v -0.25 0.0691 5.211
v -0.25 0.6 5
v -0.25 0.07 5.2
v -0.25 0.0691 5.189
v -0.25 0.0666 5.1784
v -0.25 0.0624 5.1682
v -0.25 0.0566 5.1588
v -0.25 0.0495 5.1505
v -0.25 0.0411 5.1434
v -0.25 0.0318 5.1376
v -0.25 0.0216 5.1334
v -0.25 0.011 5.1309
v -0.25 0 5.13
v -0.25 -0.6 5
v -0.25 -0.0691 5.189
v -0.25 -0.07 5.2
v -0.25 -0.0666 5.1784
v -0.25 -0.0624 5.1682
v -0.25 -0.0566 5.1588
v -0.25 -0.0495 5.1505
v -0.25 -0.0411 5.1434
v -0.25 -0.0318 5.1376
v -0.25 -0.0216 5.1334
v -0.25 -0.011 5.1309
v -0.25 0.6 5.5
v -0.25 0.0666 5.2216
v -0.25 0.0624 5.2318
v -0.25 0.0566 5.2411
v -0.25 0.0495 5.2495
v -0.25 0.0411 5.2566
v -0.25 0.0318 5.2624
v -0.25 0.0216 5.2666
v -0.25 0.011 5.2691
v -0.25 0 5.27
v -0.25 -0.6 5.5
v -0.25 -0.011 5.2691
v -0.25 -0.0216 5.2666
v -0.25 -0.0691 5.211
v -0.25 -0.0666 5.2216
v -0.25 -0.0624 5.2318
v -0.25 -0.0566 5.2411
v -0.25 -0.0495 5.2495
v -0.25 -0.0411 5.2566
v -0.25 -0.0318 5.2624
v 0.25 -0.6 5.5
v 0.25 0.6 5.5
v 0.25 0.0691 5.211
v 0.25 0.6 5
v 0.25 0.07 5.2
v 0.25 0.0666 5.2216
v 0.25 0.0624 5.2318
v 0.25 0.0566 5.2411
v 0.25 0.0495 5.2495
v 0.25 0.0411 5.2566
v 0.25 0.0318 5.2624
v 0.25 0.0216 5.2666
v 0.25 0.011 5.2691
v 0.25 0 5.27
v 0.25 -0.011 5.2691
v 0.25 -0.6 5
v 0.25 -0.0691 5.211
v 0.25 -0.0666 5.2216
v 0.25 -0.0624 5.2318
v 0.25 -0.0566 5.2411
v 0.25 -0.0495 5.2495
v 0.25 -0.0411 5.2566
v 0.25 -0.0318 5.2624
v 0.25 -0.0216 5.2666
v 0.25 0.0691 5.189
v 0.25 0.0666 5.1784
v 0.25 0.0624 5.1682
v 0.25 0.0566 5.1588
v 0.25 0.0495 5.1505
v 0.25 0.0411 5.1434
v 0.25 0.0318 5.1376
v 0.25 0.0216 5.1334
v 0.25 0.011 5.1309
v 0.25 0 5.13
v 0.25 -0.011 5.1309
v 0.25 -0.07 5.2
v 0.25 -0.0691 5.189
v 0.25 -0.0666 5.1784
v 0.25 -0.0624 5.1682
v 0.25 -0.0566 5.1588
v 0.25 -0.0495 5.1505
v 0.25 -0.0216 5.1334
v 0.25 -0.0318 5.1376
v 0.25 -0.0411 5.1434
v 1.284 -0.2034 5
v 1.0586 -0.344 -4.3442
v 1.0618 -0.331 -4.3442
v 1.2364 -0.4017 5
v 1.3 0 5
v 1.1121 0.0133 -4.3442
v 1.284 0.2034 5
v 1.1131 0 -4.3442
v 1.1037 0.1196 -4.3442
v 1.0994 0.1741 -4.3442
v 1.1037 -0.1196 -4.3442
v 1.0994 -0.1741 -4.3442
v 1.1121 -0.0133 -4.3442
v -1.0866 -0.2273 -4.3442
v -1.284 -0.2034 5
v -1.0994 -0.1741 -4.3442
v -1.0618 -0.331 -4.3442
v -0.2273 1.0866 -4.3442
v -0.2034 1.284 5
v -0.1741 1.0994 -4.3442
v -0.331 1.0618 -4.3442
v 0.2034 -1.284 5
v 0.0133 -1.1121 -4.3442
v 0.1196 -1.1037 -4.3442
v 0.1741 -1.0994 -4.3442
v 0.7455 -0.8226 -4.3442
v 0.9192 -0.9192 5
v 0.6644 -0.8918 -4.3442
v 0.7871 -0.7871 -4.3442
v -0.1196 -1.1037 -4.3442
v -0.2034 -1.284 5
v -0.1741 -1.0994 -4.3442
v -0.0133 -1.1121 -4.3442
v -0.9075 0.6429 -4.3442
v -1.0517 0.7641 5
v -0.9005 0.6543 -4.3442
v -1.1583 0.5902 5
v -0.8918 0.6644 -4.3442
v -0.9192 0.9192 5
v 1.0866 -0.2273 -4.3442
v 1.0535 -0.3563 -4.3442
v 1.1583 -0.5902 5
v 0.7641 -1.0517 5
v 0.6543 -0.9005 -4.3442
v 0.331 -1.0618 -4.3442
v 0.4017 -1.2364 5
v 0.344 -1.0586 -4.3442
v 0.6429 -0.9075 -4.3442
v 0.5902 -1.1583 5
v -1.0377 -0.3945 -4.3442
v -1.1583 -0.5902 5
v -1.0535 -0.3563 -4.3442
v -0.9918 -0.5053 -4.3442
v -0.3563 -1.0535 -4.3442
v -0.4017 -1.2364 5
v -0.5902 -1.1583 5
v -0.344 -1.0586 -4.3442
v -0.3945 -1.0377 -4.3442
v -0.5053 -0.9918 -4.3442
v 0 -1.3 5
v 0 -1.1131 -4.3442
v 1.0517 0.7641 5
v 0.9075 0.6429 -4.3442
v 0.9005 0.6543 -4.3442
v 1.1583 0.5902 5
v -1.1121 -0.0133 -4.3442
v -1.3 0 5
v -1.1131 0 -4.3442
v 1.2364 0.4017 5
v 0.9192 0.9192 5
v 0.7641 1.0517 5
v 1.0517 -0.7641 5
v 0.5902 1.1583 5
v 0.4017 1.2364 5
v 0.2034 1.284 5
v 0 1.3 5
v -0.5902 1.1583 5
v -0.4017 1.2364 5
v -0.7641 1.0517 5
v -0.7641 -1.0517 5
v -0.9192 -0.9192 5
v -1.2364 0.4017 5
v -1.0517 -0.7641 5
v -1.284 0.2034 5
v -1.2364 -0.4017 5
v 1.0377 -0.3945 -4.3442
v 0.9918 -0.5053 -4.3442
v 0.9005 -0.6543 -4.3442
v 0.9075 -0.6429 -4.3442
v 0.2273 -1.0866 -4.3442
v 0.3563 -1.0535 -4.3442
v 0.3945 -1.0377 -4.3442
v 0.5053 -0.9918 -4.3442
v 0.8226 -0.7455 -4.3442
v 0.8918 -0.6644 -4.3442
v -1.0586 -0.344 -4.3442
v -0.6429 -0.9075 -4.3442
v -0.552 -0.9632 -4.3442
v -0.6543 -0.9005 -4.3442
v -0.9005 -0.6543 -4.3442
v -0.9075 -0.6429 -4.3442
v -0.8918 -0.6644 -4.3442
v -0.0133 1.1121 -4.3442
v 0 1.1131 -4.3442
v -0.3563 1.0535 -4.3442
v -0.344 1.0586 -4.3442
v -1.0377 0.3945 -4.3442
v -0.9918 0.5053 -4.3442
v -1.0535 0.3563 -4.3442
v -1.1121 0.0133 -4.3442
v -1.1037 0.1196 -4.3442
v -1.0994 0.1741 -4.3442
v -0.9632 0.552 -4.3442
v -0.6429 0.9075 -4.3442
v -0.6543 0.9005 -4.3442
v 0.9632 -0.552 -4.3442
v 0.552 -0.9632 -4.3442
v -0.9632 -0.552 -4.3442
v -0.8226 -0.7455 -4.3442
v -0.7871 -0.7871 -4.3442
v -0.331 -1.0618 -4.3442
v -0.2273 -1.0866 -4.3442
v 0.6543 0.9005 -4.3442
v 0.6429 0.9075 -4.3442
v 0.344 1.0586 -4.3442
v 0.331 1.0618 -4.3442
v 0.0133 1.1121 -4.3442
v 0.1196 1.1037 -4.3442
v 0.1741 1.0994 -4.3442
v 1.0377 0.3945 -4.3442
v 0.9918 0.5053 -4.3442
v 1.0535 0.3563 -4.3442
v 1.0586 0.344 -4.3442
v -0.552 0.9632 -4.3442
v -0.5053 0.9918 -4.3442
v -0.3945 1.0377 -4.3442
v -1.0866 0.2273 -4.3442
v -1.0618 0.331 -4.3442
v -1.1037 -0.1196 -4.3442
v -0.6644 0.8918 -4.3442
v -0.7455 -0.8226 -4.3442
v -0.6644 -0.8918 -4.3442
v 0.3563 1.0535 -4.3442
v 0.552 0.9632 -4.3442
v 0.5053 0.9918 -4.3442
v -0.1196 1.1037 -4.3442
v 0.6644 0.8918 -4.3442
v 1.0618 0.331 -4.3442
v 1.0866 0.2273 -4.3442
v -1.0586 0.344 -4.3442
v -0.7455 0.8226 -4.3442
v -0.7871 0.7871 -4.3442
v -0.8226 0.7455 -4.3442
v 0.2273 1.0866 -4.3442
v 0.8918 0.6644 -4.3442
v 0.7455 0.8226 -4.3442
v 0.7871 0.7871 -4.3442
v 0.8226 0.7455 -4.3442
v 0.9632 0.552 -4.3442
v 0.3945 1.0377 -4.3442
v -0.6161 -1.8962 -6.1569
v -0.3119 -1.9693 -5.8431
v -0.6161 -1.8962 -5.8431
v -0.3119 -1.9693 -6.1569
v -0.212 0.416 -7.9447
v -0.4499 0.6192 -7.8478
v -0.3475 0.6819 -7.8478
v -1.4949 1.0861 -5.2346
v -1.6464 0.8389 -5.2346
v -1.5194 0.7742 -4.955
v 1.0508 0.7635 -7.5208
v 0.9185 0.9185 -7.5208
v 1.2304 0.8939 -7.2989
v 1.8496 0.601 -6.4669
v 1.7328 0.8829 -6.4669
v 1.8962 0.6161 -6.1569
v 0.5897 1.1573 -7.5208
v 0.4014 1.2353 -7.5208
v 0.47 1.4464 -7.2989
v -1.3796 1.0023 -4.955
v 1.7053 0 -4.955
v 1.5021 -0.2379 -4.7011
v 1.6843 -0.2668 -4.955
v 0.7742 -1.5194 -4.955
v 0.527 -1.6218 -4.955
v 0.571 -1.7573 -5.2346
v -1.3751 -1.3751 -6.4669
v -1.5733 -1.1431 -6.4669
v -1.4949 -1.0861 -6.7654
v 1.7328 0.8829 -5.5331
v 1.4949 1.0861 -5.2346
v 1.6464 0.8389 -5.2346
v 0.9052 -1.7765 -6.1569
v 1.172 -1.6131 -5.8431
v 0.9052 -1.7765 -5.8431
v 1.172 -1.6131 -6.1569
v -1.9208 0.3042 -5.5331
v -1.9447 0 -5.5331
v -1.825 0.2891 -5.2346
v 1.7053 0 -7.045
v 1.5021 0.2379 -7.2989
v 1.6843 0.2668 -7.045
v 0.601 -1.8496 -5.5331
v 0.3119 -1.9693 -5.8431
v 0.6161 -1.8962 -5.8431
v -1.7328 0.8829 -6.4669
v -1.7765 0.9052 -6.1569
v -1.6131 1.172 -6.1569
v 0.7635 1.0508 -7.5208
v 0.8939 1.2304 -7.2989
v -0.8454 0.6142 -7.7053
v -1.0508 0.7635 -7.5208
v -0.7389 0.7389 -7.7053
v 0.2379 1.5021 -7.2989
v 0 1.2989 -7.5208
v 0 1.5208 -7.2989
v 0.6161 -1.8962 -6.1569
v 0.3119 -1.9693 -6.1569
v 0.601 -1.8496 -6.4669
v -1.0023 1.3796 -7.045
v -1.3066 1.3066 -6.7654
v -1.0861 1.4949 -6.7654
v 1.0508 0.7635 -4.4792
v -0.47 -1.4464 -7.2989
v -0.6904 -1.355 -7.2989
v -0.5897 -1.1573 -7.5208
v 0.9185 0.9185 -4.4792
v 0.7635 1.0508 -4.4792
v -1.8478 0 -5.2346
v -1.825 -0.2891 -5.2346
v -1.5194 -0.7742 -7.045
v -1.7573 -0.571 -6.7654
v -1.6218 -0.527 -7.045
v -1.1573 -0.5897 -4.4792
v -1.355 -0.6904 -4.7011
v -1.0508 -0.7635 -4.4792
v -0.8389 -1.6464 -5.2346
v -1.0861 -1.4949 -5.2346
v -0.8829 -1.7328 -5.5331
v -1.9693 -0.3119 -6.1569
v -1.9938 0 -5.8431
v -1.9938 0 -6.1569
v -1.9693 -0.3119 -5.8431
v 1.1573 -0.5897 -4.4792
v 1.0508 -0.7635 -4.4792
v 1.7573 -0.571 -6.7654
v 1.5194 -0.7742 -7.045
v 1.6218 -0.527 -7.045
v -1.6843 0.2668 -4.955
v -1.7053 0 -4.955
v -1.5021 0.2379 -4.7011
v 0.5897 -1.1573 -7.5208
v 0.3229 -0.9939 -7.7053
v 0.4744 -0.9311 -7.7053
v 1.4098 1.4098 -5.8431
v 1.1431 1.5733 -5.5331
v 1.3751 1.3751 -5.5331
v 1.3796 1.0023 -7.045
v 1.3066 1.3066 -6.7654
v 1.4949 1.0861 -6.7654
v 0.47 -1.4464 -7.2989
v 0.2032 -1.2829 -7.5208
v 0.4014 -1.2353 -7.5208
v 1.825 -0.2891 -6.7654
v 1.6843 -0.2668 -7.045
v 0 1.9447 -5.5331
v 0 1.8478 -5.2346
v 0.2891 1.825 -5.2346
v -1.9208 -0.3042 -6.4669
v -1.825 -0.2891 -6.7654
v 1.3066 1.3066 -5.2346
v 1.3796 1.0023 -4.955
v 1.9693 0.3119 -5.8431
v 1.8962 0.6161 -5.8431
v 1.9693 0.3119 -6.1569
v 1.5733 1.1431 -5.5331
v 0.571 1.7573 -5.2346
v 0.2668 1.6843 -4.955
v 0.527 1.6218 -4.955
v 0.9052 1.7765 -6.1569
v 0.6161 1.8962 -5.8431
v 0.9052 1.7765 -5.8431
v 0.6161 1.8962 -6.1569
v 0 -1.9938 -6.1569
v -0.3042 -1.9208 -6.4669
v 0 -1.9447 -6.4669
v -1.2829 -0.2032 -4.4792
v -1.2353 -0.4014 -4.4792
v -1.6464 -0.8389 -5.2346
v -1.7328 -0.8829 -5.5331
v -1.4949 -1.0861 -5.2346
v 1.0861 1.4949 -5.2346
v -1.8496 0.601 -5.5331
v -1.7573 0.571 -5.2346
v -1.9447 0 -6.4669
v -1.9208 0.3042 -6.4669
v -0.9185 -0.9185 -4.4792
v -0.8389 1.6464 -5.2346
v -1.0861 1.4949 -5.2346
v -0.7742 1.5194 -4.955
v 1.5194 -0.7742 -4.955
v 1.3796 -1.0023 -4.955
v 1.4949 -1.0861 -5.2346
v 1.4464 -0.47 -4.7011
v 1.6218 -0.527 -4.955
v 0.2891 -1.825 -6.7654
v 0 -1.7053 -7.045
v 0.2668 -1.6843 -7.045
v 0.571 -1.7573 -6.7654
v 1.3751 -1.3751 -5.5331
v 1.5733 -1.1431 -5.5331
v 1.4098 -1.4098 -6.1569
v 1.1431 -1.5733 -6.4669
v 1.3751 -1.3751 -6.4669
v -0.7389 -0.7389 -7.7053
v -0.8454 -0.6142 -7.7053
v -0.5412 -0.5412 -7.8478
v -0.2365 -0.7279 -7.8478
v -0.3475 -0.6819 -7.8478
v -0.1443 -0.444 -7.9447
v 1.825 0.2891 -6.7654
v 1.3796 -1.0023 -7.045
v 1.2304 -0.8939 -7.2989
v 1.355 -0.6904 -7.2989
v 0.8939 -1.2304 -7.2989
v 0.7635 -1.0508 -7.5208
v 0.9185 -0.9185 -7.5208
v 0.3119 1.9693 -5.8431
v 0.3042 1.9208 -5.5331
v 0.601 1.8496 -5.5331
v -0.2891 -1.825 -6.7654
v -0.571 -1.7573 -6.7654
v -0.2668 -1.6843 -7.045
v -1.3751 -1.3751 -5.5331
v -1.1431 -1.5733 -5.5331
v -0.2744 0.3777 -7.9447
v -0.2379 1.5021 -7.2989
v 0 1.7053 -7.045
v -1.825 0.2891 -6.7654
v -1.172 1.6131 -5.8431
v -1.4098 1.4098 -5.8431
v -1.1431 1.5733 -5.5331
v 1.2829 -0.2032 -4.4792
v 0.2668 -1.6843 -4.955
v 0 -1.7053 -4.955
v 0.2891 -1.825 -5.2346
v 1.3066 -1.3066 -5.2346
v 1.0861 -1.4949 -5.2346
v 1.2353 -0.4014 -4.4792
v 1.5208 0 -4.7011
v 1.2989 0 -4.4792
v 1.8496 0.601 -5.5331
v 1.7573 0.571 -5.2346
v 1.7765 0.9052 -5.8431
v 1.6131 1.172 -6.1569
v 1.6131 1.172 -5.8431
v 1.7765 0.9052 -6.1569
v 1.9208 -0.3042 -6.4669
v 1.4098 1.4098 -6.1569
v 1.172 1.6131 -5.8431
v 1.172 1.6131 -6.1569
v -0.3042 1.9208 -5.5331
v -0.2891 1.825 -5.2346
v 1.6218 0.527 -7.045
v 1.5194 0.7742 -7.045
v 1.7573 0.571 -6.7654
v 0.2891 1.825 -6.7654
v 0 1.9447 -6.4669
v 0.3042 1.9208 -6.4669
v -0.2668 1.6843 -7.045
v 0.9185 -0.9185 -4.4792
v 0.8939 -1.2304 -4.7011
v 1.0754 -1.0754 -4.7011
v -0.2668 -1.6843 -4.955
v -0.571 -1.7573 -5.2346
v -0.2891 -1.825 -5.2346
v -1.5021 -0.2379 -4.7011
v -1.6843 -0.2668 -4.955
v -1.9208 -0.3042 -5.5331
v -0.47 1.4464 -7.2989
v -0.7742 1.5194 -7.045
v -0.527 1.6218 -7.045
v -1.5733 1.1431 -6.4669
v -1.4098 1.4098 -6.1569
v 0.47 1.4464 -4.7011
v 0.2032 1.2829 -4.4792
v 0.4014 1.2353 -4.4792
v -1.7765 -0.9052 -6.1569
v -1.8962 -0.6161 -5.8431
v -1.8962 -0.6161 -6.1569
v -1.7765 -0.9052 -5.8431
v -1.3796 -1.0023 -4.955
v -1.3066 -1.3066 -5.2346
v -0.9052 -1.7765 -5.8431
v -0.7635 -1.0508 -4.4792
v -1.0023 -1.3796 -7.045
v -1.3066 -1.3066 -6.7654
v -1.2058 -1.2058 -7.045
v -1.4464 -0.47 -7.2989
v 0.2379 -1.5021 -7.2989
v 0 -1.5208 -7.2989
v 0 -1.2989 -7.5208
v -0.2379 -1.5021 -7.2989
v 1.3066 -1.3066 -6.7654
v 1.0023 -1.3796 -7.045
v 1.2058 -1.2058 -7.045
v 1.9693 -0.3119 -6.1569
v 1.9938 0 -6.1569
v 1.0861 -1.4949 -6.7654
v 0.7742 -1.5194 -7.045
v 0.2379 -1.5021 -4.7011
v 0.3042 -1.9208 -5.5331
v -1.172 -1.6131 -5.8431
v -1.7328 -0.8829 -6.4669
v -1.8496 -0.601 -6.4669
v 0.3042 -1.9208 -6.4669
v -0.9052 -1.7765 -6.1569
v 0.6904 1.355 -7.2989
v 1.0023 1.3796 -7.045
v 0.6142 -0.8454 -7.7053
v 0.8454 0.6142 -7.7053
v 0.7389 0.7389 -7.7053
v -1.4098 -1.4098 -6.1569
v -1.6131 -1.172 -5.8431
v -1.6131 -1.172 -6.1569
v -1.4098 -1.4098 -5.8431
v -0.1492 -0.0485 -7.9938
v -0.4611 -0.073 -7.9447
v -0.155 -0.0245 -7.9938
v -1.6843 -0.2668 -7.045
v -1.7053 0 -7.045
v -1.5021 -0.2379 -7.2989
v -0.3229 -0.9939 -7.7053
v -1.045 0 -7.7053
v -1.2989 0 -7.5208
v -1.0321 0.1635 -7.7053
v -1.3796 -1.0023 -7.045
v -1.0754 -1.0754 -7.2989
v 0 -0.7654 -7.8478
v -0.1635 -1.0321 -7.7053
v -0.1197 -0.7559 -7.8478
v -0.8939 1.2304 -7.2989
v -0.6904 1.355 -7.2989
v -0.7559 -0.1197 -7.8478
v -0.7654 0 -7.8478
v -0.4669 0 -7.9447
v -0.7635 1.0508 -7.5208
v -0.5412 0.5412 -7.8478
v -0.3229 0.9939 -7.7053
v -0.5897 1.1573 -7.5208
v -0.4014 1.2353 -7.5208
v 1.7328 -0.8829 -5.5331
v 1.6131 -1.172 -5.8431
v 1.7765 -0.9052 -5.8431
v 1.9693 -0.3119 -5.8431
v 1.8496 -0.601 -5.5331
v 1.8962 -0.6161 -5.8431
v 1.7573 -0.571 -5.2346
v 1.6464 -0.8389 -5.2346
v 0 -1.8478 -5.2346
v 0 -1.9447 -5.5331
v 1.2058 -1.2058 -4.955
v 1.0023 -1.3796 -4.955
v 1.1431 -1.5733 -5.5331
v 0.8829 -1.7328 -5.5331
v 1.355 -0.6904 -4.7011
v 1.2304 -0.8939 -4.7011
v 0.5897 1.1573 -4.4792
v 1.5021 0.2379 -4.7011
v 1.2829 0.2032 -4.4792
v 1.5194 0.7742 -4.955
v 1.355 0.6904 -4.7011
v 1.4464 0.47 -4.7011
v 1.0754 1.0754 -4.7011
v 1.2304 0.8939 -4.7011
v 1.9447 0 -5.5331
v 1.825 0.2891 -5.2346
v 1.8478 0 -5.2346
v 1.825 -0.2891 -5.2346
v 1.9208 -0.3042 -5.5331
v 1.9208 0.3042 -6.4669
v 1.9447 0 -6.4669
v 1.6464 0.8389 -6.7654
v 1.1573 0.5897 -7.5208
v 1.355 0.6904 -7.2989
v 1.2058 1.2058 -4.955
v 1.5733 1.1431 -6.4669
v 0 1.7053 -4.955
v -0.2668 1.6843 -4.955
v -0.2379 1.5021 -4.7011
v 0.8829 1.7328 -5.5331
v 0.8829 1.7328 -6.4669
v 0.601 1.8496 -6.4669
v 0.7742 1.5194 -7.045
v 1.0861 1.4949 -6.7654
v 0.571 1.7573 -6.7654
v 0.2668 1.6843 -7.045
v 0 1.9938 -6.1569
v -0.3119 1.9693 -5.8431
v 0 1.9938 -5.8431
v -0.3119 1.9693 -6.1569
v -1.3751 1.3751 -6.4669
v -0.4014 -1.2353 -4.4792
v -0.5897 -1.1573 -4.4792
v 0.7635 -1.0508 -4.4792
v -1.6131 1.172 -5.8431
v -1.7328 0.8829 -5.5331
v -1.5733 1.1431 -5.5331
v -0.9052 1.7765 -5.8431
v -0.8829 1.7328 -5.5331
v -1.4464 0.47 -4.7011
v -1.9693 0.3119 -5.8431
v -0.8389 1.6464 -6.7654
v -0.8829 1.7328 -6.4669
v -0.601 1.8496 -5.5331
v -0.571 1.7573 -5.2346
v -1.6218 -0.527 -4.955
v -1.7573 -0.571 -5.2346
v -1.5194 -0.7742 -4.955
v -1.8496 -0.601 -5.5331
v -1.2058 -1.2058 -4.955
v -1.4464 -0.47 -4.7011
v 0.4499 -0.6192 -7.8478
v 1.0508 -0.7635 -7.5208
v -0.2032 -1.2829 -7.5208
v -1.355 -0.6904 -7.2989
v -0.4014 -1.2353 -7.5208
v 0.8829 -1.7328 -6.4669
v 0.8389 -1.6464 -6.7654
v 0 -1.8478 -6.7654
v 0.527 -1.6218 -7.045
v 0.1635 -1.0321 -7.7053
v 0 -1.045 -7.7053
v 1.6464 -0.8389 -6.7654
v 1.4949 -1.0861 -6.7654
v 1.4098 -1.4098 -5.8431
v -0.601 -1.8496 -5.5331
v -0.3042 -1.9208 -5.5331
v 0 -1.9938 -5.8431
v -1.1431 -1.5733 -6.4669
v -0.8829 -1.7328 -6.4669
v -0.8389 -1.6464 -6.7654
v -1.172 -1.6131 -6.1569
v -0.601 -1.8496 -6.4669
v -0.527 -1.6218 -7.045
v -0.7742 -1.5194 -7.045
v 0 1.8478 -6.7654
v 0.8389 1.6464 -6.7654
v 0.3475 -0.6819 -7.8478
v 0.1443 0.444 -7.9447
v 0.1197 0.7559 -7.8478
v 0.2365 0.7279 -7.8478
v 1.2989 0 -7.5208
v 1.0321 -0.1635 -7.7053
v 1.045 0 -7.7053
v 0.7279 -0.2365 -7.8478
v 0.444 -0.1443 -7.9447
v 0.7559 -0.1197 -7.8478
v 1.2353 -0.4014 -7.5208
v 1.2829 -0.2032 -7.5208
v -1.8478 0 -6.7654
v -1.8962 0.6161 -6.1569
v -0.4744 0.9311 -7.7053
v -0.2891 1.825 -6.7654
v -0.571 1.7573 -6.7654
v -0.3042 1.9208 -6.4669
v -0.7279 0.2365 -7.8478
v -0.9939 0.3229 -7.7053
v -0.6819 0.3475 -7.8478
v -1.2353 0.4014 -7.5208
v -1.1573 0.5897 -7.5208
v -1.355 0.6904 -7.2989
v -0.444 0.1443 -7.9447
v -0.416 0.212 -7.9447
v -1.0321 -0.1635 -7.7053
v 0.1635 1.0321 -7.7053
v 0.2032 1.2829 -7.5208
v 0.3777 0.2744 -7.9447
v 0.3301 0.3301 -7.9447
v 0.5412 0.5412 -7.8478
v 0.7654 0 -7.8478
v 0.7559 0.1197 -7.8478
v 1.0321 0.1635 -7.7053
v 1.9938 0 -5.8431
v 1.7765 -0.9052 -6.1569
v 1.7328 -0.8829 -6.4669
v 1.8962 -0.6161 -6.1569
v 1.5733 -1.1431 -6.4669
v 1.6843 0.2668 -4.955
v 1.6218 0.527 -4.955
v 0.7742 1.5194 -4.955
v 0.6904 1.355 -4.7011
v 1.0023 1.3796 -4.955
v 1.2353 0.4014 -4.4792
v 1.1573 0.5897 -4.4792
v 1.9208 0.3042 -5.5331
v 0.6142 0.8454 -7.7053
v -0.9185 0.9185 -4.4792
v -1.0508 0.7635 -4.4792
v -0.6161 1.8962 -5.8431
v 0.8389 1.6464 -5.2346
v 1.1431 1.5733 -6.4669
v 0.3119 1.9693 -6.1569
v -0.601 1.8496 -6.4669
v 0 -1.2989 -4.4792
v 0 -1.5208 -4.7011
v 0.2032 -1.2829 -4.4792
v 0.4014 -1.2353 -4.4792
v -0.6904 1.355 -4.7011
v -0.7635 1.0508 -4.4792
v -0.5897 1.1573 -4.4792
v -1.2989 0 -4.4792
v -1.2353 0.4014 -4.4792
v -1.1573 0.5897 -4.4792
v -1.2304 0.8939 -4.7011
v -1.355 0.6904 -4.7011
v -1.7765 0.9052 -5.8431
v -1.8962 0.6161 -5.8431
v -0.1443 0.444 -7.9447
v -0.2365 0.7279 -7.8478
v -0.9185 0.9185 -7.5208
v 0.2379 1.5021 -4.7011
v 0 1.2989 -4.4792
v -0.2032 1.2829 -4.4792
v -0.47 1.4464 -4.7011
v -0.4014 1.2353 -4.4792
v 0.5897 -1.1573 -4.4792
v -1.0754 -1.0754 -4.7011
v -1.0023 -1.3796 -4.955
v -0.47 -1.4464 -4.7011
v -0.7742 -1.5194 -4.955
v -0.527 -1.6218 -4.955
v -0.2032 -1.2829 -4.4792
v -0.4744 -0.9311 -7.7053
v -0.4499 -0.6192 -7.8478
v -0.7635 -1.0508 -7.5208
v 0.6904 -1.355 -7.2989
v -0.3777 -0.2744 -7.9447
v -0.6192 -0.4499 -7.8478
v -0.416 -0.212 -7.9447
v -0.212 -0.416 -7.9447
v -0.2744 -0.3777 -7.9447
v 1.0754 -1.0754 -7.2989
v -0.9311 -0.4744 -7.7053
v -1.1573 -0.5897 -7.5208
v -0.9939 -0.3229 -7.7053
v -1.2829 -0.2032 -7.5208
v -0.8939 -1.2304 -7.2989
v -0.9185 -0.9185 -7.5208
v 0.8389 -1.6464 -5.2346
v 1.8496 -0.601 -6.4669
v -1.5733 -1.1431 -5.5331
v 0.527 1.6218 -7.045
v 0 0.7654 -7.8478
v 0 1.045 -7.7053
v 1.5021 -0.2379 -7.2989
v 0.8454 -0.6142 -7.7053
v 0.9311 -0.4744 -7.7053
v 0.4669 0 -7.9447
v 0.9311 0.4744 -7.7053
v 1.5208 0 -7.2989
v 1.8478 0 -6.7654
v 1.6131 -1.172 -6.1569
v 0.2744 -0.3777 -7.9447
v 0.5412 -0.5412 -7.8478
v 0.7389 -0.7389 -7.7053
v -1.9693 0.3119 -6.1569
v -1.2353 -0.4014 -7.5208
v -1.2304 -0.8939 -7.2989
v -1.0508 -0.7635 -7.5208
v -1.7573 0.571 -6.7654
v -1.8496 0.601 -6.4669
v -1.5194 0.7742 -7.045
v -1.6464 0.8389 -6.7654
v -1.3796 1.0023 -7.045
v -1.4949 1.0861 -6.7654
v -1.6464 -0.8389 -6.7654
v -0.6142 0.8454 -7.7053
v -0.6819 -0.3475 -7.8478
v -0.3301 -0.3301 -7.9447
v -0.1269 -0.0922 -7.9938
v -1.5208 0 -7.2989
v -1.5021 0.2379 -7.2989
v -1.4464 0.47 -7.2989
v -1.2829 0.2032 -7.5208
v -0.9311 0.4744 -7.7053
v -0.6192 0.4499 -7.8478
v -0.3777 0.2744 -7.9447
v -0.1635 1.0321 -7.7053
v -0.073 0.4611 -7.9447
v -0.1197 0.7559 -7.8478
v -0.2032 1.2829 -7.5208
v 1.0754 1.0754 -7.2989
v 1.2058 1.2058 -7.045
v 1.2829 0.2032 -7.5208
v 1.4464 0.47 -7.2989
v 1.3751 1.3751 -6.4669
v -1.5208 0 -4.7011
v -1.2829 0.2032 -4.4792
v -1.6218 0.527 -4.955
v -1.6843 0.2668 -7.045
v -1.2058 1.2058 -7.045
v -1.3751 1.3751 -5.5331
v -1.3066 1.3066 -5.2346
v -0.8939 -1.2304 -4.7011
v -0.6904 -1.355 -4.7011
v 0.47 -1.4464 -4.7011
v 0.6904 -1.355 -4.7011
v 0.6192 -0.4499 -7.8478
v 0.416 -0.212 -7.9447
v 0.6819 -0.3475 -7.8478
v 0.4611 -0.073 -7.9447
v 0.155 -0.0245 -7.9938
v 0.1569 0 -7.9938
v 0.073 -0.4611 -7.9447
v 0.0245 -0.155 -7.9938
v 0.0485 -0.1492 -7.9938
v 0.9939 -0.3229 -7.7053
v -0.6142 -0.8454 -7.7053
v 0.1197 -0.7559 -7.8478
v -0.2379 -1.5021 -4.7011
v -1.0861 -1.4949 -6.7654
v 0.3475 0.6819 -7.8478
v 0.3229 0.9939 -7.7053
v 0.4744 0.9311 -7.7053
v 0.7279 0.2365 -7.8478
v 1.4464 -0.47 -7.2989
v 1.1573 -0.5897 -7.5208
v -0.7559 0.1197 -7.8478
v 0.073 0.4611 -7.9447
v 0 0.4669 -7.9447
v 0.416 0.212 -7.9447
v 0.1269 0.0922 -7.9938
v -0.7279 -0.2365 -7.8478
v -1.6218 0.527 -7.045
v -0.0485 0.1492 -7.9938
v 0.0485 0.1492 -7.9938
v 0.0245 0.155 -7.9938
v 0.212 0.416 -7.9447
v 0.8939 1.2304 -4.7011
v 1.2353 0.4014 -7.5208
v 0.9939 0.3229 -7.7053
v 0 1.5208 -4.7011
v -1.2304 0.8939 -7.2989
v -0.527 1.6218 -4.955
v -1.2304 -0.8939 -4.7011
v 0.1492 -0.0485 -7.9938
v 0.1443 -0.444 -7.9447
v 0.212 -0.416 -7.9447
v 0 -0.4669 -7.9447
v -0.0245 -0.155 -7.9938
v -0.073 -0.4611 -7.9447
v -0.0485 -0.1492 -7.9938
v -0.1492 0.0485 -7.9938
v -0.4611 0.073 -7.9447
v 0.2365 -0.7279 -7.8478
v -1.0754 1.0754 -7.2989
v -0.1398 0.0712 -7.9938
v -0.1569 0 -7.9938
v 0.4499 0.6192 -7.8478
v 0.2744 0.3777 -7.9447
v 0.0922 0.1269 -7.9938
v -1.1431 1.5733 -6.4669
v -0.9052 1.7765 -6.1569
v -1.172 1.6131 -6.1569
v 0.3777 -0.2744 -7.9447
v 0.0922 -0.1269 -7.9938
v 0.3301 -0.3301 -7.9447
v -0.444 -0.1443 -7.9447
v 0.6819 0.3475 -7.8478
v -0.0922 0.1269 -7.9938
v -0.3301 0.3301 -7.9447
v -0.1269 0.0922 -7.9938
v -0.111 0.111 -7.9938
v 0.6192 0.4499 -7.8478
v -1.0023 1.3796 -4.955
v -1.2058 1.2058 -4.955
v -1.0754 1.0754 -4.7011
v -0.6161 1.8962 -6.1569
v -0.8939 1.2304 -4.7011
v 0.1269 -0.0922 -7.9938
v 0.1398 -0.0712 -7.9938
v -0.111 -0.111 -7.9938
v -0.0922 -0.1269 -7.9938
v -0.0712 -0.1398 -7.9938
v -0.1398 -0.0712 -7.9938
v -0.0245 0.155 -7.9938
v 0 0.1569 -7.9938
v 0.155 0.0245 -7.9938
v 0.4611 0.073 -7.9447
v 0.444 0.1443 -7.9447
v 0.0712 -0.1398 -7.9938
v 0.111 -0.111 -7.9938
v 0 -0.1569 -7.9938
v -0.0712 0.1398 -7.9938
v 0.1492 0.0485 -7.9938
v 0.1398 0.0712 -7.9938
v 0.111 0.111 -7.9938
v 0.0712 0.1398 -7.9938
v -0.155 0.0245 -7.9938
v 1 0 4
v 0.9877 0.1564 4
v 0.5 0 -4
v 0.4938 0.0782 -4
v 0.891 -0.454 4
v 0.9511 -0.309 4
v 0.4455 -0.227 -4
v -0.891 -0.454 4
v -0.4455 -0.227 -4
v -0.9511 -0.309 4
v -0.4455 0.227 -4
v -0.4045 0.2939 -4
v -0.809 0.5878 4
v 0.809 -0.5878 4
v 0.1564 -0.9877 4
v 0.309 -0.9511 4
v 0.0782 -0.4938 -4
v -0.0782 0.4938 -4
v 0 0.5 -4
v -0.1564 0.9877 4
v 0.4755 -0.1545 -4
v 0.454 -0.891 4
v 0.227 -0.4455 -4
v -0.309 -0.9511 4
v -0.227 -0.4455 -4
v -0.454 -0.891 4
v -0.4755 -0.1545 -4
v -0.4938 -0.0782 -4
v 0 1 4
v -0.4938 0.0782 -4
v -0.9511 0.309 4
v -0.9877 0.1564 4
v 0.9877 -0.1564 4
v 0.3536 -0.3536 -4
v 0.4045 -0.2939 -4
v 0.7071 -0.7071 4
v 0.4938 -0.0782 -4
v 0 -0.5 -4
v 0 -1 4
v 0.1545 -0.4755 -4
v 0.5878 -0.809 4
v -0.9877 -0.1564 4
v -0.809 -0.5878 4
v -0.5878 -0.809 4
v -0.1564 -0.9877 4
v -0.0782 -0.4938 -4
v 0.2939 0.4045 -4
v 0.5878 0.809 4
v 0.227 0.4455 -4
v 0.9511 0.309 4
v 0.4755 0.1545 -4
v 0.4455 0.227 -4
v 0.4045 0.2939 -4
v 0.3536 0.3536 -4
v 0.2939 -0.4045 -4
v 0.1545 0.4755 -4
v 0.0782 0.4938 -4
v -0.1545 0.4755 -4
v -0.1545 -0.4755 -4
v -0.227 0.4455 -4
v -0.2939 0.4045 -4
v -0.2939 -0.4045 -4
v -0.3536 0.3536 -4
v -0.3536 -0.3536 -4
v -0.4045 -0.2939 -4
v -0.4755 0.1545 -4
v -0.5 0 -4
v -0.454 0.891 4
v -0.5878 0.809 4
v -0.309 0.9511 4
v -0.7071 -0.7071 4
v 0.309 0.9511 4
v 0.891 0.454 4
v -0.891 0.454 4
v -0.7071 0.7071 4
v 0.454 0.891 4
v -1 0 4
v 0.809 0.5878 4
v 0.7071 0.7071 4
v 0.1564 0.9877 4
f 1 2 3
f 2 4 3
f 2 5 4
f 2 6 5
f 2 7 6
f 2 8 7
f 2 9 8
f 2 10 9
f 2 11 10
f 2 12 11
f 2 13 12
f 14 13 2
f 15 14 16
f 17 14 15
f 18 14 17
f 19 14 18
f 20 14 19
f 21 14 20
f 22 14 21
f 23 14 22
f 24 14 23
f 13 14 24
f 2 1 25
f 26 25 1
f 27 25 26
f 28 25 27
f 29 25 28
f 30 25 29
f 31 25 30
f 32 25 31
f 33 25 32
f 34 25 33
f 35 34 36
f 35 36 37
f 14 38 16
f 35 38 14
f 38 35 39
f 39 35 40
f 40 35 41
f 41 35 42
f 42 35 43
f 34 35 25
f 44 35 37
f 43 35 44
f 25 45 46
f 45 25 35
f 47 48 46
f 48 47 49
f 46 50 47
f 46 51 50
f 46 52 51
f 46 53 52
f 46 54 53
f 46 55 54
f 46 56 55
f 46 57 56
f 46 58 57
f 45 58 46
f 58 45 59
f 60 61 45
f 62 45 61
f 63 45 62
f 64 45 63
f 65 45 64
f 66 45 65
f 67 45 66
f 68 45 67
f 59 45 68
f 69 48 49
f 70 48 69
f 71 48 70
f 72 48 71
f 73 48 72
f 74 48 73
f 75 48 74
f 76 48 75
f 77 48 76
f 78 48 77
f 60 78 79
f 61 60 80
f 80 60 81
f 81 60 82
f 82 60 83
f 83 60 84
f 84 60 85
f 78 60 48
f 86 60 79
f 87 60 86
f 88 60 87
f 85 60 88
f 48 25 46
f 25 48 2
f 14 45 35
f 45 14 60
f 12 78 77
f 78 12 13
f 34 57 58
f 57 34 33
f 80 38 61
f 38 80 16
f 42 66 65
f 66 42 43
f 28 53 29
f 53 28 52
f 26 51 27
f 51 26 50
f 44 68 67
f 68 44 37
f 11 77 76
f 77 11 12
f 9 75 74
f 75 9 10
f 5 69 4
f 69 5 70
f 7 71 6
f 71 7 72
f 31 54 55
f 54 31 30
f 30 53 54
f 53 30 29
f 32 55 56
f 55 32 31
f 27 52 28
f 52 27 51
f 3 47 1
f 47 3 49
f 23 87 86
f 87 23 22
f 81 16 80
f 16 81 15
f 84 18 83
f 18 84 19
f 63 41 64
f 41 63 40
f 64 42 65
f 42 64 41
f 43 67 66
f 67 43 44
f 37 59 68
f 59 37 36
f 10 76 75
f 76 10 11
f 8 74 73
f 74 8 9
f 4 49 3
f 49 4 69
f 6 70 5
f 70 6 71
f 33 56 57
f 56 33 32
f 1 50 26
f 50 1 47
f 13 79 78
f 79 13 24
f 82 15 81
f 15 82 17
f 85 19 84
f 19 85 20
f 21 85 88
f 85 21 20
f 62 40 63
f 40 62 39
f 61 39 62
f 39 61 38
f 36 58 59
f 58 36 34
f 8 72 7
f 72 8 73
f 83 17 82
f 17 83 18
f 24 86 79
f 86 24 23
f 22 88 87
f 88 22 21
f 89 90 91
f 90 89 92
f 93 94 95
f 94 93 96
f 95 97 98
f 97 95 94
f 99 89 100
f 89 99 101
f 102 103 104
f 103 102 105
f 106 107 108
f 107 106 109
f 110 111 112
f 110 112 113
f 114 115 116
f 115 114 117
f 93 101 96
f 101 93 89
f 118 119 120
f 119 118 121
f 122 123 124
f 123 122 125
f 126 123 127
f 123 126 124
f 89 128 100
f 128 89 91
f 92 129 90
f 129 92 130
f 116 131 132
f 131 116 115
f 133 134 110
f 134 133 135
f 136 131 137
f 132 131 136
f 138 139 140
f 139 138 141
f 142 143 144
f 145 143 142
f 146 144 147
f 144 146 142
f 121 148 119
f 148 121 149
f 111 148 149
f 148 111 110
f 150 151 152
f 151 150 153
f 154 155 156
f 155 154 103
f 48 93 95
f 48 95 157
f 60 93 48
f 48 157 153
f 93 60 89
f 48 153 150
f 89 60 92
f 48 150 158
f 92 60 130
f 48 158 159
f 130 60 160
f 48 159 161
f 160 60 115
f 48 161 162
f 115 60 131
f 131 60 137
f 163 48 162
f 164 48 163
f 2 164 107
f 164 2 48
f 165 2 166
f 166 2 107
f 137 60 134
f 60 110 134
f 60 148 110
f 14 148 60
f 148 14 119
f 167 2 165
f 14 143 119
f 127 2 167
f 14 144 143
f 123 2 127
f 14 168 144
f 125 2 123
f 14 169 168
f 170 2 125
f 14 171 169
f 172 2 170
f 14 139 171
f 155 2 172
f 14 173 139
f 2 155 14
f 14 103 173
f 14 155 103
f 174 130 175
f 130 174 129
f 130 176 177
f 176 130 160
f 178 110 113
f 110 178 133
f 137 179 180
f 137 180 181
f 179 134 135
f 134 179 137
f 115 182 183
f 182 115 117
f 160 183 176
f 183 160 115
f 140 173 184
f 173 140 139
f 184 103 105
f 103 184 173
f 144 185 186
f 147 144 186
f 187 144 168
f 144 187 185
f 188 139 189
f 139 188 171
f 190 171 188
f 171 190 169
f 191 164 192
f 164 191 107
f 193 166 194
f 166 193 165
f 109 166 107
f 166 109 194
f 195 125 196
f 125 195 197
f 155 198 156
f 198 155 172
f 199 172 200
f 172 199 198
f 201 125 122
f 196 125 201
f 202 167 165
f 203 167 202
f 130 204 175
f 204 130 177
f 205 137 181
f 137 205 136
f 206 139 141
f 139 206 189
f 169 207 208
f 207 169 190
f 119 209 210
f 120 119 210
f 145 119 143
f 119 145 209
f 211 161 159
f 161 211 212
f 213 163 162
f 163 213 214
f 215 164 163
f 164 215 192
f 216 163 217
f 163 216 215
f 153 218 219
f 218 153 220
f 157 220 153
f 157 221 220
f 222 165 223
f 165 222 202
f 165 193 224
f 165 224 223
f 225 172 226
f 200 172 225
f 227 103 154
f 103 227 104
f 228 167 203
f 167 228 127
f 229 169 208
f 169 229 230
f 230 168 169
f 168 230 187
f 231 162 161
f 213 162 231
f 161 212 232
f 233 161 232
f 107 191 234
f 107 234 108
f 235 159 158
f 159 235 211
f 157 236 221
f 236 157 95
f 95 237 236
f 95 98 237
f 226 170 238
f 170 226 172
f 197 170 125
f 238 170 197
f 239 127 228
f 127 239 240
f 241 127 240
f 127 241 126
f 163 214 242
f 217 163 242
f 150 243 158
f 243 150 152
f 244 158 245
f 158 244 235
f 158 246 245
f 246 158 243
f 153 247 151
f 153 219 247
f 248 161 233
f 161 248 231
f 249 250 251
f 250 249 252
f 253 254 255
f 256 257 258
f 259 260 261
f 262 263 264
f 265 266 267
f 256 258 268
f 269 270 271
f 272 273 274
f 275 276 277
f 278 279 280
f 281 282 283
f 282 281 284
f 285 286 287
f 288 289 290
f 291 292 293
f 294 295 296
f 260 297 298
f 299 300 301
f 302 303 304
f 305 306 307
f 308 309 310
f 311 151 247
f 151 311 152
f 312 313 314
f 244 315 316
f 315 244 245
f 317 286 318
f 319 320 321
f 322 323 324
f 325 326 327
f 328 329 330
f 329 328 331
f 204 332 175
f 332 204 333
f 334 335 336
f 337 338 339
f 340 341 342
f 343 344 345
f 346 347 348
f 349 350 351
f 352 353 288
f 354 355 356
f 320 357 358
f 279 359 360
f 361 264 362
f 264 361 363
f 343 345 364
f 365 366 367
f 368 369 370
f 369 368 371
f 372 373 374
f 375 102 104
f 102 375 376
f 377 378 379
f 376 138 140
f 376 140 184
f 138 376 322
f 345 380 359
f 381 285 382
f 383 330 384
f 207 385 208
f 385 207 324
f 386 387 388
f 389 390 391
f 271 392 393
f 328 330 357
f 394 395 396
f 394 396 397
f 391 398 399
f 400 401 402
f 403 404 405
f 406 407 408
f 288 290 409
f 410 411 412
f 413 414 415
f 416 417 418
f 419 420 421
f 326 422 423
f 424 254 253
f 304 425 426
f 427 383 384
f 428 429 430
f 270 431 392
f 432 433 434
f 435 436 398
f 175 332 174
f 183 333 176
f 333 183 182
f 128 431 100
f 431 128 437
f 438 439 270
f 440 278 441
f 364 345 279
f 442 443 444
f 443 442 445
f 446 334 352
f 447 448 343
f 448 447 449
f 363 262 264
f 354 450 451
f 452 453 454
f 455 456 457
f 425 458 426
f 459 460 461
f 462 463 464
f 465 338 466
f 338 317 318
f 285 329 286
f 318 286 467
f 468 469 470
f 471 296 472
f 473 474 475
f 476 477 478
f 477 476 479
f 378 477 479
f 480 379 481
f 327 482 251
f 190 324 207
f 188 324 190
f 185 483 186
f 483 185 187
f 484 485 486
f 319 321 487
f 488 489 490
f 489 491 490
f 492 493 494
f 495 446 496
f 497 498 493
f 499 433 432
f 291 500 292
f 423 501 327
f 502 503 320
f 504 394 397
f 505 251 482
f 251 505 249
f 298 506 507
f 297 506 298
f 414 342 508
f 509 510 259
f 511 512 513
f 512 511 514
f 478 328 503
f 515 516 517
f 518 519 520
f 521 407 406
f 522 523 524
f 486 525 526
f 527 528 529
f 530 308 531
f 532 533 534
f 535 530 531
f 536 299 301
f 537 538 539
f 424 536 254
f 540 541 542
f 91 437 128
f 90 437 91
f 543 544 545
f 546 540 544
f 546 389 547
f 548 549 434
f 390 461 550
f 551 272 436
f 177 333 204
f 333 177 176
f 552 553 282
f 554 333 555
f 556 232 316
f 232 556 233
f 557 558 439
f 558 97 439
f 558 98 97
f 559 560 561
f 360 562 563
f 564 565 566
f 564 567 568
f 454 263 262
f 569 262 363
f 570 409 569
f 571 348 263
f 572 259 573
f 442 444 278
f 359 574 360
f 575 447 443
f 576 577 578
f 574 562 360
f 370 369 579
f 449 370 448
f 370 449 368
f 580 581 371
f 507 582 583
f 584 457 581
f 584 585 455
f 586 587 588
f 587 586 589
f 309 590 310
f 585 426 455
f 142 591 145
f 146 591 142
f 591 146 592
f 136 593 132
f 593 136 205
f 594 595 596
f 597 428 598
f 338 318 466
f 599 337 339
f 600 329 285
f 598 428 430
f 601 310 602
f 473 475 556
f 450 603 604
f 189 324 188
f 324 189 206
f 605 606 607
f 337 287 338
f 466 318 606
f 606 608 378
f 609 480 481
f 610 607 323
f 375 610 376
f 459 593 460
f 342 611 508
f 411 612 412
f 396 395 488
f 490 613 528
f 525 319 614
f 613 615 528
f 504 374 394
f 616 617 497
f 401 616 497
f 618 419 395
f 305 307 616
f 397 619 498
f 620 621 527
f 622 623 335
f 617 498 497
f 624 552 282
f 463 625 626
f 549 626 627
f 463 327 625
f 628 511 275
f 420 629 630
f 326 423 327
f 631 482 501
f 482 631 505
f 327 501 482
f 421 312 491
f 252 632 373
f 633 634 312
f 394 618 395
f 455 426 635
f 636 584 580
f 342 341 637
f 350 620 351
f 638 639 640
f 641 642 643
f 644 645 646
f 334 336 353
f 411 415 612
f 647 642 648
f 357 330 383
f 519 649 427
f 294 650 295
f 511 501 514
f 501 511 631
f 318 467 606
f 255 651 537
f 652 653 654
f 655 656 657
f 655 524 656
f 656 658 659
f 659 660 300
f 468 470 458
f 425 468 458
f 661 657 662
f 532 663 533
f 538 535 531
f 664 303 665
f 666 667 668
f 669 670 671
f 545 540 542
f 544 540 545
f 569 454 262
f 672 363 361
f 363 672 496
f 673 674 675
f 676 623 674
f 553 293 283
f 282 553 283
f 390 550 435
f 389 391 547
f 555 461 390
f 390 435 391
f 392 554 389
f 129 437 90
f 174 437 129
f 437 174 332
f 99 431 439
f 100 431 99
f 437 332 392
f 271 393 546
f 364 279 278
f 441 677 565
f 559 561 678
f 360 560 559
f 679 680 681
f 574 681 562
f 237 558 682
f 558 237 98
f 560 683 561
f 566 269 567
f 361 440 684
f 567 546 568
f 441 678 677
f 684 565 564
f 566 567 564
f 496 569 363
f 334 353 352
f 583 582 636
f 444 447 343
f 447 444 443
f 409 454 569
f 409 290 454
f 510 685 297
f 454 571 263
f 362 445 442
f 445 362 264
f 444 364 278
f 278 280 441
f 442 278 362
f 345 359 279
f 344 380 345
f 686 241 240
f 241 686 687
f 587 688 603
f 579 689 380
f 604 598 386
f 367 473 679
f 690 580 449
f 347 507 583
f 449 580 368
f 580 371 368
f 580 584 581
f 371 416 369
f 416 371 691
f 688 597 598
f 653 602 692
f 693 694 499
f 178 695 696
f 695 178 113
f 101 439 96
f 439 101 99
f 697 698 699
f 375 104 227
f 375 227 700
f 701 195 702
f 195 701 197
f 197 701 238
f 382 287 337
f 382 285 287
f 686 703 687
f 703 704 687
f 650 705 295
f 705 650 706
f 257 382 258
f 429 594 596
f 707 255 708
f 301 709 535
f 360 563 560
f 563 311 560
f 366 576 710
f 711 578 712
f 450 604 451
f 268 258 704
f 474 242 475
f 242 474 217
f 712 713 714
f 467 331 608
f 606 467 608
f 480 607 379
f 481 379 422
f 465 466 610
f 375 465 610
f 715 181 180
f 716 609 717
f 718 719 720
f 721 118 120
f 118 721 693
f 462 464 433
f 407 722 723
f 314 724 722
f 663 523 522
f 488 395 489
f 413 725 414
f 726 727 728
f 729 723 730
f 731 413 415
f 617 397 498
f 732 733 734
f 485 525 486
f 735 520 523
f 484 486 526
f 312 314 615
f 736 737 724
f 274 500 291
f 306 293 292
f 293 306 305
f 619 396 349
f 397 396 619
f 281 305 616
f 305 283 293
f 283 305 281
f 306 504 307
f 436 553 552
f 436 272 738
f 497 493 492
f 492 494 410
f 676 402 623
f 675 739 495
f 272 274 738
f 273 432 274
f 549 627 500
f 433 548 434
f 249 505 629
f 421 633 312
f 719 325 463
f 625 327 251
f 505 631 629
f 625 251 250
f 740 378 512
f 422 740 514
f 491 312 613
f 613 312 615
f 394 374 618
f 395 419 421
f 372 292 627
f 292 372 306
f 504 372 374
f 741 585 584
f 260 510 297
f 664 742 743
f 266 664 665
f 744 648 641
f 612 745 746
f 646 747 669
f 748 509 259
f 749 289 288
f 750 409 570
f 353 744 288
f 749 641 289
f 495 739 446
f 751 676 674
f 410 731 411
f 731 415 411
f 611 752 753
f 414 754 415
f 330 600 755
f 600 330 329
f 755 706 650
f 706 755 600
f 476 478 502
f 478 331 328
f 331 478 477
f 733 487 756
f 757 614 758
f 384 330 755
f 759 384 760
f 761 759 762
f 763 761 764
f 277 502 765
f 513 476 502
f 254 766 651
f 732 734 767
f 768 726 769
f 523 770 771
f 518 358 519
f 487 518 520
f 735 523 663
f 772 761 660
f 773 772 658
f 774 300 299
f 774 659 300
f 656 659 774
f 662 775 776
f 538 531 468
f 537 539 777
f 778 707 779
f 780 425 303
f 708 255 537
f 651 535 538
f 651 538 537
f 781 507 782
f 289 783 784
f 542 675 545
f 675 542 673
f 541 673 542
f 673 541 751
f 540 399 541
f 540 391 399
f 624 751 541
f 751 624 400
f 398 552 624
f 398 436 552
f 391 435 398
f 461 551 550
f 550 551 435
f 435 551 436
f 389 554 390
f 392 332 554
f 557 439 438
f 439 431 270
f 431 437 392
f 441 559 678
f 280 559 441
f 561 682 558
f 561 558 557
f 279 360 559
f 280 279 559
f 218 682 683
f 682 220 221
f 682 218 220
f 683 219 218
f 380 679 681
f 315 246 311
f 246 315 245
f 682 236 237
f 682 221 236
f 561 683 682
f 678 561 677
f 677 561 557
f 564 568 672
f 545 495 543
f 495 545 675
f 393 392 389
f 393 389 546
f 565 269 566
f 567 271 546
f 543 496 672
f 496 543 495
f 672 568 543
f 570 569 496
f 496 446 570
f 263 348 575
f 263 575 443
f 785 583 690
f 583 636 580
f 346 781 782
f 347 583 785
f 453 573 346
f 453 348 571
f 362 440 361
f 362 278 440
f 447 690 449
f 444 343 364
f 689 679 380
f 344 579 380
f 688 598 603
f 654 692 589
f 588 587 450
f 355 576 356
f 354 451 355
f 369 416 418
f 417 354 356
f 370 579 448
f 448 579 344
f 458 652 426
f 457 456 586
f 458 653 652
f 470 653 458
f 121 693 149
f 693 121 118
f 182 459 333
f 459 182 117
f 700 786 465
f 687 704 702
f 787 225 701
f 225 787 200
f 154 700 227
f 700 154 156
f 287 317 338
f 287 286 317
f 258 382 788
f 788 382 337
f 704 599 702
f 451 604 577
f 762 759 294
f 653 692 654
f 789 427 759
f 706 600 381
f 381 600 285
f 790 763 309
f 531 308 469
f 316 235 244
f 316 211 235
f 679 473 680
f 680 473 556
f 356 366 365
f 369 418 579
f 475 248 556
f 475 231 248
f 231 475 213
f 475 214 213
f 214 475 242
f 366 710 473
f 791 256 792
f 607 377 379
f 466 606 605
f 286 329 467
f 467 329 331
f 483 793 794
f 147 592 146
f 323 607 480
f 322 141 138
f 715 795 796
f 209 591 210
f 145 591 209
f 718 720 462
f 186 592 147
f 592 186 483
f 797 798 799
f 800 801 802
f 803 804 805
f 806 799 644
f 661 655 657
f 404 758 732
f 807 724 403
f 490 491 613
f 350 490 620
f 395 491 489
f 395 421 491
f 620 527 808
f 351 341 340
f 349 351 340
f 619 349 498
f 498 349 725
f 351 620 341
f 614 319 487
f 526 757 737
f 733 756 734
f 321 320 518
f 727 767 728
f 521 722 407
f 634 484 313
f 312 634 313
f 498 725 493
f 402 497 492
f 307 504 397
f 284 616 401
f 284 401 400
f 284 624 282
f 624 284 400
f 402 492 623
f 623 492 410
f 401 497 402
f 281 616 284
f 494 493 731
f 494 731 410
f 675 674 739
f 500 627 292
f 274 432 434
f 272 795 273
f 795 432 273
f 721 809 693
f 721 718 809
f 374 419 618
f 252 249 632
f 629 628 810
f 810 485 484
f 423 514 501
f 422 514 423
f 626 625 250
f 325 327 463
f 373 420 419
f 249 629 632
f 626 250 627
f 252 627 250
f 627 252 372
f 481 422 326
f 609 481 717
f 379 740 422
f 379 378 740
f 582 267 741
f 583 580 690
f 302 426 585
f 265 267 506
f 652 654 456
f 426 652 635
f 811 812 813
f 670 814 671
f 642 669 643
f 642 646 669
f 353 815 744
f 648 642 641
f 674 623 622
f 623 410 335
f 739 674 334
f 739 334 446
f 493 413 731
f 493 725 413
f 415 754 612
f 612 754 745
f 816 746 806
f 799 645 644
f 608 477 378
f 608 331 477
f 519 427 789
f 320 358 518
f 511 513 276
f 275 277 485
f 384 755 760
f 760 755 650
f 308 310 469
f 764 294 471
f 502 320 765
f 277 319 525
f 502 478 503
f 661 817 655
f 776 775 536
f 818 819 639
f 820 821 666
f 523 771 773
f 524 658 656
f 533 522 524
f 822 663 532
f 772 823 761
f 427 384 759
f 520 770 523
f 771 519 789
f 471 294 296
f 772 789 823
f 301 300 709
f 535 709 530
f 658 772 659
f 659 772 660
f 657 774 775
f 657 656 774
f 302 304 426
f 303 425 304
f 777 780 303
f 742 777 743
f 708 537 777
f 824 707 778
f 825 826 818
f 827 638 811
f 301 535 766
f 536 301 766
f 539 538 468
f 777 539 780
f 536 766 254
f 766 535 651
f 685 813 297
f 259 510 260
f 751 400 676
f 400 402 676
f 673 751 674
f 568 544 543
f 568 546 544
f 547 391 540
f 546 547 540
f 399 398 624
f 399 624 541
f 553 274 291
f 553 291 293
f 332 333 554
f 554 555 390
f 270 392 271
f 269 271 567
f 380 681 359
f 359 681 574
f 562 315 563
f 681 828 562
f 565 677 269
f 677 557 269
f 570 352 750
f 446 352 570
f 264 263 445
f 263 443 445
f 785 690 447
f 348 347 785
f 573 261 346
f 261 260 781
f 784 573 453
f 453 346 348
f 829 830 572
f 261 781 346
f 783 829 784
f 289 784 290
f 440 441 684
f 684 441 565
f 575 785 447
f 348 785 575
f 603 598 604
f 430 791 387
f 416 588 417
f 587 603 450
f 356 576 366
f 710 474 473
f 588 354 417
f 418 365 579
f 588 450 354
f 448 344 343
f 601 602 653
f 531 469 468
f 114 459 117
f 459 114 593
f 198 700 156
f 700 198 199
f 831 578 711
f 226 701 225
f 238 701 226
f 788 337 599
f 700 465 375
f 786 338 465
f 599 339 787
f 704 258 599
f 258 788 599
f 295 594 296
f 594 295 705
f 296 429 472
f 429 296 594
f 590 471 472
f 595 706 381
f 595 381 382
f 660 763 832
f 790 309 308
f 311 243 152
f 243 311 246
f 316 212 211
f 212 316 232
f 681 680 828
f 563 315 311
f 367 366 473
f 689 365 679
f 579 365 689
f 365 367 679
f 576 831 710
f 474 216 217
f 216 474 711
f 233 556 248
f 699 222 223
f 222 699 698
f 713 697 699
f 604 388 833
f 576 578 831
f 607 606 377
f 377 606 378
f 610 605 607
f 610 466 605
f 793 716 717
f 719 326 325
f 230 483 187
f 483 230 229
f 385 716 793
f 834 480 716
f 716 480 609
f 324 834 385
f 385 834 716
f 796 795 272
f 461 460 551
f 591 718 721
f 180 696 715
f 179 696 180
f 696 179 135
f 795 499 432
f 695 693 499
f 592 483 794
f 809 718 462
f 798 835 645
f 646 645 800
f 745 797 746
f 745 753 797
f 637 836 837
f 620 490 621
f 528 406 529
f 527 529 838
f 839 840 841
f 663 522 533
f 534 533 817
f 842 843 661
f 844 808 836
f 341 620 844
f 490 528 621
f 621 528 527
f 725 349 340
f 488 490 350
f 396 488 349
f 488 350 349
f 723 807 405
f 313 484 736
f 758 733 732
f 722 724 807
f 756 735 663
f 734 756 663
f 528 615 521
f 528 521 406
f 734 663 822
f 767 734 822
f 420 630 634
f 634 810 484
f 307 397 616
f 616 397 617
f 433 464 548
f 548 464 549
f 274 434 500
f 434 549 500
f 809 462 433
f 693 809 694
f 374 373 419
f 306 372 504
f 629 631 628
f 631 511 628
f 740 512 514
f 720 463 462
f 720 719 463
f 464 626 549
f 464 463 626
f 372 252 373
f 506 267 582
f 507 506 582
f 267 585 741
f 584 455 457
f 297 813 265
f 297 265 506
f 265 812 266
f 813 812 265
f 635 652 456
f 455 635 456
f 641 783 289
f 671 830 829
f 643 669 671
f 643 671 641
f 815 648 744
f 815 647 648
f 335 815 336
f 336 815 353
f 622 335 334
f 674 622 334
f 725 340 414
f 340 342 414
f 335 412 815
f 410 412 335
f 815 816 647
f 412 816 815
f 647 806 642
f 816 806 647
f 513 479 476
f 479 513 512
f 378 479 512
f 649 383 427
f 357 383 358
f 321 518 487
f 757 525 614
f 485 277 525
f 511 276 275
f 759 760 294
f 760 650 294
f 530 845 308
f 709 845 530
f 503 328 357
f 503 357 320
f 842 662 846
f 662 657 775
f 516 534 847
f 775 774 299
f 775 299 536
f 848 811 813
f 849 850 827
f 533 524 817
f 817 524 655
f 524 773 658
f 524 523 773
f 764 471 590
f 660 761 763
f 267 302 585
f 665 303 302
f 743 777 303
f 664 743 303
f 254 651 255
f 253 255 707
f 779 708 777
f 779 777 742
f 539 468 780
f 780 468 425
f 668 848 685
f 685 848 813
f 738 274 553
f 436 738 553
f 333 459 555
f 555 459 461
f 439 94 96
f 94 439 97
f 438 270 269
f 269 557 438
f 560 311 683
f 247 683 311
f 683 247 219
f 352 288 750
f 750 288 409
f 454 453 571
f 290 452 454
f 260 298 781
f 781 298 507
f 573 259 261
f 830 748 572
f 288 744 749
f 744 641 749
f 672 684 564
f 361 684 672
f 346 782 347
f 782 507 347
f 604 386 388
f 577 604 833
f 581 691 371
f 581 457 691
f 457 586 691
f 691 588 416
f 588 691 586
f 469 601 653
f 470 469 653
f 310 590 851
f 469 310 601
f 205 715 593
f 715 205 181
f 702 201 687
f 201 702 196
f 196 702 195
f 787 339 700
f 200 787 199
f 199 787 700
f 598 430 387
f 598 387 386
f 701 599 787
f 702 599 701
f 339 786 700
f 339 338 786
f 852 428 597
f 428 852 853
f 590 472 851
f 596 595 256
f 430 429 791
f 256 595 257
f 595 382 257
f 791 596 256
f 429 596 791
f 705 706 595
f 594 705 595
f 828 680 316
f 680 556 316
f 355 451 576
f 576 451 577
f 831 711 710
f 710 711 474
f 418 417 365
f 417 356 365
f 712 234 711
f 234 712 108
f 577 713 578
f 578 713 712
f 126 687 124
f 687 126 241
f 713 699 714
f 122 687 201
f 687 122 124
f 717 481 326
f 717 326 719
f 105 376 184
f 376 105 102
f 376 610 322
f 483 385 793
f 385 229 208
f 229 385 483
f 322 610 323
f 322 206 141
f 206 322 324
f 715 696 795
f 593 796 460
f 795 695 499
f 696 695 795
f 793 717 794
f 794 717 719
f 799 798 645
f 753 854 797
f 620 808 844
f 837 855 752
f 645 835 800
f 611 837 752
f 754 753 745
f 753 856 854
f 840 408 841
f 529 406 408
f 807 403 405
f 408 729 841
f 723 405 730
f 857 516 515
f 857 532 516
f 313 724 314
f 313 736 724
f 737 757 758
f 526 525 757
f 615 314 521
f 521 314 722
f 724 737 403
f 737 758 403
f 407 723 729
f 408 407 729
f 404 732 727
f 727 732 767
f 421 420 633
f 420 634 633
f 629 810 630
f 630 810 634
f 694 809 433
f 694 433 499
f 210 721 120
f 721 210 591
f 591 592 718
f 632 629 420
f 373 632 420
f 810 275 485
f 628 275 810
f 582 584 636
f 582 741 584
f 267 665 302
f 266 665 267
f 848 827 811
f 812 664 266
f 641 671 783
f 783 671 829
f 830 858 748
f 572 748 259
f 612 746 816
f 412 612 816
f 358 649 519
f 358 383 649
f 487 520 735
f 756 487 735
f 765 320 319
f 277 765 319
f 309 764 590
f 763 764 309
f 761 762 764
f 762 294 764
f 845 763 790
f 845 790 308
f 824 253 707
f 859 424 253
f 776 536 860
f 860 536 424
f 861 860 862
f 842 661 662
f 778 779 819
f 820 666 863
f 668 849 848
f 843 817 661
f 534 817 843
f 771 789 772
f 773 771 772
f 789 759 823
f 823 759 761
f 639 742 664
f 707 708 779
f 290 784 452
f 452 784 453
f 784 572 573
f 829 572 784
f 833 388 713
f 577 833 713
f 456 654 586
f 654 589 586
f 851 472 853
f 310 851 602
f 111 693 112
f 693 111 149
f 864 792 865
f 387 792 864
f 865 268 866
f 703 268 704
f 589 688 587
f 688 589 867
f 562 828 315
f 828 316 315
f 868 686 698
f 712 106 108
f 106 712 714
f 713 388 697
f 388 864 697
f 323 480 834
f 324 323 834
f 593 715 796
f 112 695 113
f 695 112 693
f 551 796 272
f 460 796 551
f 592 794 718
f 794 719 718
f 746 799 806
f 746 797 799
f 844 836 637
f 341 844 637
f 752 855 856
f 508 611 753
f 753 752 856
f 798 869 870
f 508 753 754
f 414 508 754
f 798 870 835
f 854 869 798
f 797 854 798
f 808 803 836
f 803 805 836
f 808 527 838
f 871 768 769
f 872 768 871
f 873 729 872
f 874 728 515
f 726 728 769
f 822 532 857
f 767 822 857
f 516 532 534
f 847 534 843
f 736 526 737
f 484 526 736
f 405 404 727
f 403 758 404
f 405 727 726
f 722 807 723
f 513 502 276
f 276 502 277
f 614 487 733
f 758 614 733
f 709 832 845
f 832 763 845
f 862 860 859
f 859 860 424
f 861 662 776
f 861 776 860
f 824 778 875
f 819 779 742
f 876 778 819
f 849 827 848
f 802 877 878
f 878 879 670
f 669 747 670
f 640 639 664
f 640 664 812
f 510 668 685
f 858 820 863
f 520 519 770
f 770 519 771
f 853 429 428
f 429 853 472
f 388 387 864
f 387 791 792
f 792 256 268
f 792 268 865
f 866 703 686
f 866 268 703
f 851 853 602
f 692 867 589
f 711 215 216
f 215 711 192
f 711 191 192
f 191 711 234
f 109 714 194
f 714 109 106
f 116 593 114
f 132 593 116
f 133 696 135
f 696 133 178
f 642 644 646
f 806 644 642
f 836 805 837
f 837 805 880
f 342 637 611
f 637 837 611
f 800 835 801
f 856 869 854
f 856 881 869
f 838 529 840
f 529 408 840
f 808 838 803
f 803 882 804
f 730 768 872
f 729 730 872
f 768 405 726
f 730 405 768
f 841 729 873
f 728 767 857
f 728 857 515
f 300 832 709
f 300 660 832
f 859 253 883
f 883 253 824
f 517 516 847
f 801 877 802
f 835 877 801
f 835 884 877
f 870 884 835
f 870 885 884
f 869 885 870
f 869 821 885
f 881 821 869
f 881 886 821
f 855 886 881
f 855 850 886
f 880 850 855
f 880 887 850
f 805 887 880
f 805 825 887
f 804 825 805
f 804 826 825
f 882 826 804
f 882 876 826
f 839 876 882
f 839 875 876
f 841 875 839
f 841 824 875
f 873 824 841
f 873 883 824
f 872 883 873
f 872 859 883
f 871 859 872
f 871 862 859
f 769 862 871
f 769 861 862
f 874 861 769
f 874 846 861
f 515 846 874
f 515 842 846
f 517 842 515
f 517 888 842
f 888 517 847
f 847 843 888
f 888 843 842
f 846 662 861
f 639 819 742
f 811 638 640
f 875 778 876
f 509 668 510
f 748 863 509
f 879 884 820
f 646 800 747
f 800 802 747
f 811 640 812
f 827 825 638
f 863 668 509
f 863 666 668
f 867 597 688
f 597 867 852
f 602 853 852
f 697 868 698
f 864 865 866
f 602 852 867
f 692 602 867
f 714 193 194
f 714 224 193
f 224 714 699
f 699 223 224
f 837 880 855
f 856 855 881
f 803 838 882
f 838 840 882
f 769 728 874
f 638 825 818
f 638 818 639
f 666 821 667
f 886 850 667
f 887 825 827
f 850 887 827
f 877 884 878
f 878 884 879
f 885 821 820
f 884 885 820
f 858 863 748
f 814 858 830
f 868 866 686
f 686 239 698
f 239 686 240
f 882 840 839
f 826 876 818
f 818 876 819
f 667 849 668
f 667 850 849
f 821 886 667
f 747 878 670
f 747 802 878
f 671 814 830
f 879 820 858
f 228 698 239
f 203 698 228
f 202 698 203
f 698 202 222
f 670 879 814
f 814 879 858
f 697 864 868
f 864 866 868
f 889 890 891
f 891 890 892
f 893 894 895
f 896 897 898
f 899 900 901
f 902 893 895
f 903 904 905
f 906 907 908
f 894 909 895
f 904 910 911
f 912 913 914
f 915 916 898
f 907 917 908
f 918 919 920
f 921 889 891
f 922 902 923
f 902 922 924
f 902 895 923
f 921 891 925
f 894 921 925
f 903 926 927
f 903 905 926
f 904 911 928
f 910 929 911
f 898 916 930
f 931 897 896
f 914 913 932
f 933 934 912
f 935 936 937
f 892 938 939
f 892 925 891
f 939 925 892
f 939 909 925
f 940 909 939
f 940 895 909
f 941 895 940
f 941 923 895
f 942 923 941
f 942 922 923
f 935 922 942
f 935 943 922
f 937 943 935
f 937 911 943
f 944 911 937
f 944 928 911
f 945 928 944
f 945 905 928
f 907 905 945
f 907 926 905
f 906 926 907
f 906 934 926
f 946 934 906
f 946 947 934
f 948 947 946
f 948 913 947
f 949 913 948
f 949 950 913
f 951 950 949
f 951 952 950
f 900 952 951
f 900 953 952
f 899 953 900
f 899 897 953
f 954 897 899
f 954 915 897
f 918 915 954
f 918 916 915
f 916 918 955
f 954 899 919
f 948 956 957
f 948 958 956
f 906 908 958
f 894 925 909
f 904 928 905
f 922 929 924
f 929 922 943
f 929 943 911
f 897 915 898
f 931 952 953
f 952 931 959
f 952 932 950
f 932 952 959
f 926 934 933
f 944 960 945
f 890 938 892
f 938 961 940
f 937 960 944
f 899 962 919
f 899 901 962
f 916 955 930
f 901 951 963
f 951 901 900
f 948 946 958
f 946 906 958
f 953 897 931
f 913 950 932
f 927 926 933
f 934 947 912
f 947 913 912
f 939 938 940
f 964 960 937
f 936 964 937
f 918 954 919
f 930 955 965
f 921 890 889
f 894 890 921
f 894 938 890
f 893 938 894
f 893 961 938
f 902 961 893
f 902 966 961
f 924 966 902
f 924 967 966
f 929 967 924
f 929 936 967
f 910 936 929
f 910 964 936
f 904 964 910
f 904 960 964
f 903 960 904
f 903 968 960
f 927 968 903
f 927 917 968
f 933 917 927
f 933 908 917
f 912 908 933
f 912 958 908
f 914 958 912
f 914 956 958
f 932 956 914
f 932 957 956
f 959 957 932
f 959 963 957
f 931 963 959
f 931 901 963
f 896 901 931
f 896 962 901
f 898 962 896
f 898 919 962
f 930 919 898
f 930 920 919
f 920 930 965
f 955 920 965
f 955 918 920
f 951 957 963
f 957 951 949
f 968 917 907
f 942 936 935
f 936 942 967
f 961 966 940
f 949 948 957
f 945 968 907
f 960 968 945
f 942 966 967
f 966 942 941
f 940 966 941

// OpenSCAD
difference() {
    union(){
        cylinder(h=10, r2=1.3, r1=1.1, center=true, $fn=40);
        translate([0,0,-6]) sphere(r=2, $fn=40);
        difference() {
            translate([0,0,5]) cube([0.5,1.2,1], center=true);
            translate([-0.35,0,5.2]) rotate([0,90,0]) cylinder(h=0.7, r=0.07, $fn=40);
        }
    }
    cylinder(h=8, r2=1, r1=0.5, center=true, $fn=40);
}
